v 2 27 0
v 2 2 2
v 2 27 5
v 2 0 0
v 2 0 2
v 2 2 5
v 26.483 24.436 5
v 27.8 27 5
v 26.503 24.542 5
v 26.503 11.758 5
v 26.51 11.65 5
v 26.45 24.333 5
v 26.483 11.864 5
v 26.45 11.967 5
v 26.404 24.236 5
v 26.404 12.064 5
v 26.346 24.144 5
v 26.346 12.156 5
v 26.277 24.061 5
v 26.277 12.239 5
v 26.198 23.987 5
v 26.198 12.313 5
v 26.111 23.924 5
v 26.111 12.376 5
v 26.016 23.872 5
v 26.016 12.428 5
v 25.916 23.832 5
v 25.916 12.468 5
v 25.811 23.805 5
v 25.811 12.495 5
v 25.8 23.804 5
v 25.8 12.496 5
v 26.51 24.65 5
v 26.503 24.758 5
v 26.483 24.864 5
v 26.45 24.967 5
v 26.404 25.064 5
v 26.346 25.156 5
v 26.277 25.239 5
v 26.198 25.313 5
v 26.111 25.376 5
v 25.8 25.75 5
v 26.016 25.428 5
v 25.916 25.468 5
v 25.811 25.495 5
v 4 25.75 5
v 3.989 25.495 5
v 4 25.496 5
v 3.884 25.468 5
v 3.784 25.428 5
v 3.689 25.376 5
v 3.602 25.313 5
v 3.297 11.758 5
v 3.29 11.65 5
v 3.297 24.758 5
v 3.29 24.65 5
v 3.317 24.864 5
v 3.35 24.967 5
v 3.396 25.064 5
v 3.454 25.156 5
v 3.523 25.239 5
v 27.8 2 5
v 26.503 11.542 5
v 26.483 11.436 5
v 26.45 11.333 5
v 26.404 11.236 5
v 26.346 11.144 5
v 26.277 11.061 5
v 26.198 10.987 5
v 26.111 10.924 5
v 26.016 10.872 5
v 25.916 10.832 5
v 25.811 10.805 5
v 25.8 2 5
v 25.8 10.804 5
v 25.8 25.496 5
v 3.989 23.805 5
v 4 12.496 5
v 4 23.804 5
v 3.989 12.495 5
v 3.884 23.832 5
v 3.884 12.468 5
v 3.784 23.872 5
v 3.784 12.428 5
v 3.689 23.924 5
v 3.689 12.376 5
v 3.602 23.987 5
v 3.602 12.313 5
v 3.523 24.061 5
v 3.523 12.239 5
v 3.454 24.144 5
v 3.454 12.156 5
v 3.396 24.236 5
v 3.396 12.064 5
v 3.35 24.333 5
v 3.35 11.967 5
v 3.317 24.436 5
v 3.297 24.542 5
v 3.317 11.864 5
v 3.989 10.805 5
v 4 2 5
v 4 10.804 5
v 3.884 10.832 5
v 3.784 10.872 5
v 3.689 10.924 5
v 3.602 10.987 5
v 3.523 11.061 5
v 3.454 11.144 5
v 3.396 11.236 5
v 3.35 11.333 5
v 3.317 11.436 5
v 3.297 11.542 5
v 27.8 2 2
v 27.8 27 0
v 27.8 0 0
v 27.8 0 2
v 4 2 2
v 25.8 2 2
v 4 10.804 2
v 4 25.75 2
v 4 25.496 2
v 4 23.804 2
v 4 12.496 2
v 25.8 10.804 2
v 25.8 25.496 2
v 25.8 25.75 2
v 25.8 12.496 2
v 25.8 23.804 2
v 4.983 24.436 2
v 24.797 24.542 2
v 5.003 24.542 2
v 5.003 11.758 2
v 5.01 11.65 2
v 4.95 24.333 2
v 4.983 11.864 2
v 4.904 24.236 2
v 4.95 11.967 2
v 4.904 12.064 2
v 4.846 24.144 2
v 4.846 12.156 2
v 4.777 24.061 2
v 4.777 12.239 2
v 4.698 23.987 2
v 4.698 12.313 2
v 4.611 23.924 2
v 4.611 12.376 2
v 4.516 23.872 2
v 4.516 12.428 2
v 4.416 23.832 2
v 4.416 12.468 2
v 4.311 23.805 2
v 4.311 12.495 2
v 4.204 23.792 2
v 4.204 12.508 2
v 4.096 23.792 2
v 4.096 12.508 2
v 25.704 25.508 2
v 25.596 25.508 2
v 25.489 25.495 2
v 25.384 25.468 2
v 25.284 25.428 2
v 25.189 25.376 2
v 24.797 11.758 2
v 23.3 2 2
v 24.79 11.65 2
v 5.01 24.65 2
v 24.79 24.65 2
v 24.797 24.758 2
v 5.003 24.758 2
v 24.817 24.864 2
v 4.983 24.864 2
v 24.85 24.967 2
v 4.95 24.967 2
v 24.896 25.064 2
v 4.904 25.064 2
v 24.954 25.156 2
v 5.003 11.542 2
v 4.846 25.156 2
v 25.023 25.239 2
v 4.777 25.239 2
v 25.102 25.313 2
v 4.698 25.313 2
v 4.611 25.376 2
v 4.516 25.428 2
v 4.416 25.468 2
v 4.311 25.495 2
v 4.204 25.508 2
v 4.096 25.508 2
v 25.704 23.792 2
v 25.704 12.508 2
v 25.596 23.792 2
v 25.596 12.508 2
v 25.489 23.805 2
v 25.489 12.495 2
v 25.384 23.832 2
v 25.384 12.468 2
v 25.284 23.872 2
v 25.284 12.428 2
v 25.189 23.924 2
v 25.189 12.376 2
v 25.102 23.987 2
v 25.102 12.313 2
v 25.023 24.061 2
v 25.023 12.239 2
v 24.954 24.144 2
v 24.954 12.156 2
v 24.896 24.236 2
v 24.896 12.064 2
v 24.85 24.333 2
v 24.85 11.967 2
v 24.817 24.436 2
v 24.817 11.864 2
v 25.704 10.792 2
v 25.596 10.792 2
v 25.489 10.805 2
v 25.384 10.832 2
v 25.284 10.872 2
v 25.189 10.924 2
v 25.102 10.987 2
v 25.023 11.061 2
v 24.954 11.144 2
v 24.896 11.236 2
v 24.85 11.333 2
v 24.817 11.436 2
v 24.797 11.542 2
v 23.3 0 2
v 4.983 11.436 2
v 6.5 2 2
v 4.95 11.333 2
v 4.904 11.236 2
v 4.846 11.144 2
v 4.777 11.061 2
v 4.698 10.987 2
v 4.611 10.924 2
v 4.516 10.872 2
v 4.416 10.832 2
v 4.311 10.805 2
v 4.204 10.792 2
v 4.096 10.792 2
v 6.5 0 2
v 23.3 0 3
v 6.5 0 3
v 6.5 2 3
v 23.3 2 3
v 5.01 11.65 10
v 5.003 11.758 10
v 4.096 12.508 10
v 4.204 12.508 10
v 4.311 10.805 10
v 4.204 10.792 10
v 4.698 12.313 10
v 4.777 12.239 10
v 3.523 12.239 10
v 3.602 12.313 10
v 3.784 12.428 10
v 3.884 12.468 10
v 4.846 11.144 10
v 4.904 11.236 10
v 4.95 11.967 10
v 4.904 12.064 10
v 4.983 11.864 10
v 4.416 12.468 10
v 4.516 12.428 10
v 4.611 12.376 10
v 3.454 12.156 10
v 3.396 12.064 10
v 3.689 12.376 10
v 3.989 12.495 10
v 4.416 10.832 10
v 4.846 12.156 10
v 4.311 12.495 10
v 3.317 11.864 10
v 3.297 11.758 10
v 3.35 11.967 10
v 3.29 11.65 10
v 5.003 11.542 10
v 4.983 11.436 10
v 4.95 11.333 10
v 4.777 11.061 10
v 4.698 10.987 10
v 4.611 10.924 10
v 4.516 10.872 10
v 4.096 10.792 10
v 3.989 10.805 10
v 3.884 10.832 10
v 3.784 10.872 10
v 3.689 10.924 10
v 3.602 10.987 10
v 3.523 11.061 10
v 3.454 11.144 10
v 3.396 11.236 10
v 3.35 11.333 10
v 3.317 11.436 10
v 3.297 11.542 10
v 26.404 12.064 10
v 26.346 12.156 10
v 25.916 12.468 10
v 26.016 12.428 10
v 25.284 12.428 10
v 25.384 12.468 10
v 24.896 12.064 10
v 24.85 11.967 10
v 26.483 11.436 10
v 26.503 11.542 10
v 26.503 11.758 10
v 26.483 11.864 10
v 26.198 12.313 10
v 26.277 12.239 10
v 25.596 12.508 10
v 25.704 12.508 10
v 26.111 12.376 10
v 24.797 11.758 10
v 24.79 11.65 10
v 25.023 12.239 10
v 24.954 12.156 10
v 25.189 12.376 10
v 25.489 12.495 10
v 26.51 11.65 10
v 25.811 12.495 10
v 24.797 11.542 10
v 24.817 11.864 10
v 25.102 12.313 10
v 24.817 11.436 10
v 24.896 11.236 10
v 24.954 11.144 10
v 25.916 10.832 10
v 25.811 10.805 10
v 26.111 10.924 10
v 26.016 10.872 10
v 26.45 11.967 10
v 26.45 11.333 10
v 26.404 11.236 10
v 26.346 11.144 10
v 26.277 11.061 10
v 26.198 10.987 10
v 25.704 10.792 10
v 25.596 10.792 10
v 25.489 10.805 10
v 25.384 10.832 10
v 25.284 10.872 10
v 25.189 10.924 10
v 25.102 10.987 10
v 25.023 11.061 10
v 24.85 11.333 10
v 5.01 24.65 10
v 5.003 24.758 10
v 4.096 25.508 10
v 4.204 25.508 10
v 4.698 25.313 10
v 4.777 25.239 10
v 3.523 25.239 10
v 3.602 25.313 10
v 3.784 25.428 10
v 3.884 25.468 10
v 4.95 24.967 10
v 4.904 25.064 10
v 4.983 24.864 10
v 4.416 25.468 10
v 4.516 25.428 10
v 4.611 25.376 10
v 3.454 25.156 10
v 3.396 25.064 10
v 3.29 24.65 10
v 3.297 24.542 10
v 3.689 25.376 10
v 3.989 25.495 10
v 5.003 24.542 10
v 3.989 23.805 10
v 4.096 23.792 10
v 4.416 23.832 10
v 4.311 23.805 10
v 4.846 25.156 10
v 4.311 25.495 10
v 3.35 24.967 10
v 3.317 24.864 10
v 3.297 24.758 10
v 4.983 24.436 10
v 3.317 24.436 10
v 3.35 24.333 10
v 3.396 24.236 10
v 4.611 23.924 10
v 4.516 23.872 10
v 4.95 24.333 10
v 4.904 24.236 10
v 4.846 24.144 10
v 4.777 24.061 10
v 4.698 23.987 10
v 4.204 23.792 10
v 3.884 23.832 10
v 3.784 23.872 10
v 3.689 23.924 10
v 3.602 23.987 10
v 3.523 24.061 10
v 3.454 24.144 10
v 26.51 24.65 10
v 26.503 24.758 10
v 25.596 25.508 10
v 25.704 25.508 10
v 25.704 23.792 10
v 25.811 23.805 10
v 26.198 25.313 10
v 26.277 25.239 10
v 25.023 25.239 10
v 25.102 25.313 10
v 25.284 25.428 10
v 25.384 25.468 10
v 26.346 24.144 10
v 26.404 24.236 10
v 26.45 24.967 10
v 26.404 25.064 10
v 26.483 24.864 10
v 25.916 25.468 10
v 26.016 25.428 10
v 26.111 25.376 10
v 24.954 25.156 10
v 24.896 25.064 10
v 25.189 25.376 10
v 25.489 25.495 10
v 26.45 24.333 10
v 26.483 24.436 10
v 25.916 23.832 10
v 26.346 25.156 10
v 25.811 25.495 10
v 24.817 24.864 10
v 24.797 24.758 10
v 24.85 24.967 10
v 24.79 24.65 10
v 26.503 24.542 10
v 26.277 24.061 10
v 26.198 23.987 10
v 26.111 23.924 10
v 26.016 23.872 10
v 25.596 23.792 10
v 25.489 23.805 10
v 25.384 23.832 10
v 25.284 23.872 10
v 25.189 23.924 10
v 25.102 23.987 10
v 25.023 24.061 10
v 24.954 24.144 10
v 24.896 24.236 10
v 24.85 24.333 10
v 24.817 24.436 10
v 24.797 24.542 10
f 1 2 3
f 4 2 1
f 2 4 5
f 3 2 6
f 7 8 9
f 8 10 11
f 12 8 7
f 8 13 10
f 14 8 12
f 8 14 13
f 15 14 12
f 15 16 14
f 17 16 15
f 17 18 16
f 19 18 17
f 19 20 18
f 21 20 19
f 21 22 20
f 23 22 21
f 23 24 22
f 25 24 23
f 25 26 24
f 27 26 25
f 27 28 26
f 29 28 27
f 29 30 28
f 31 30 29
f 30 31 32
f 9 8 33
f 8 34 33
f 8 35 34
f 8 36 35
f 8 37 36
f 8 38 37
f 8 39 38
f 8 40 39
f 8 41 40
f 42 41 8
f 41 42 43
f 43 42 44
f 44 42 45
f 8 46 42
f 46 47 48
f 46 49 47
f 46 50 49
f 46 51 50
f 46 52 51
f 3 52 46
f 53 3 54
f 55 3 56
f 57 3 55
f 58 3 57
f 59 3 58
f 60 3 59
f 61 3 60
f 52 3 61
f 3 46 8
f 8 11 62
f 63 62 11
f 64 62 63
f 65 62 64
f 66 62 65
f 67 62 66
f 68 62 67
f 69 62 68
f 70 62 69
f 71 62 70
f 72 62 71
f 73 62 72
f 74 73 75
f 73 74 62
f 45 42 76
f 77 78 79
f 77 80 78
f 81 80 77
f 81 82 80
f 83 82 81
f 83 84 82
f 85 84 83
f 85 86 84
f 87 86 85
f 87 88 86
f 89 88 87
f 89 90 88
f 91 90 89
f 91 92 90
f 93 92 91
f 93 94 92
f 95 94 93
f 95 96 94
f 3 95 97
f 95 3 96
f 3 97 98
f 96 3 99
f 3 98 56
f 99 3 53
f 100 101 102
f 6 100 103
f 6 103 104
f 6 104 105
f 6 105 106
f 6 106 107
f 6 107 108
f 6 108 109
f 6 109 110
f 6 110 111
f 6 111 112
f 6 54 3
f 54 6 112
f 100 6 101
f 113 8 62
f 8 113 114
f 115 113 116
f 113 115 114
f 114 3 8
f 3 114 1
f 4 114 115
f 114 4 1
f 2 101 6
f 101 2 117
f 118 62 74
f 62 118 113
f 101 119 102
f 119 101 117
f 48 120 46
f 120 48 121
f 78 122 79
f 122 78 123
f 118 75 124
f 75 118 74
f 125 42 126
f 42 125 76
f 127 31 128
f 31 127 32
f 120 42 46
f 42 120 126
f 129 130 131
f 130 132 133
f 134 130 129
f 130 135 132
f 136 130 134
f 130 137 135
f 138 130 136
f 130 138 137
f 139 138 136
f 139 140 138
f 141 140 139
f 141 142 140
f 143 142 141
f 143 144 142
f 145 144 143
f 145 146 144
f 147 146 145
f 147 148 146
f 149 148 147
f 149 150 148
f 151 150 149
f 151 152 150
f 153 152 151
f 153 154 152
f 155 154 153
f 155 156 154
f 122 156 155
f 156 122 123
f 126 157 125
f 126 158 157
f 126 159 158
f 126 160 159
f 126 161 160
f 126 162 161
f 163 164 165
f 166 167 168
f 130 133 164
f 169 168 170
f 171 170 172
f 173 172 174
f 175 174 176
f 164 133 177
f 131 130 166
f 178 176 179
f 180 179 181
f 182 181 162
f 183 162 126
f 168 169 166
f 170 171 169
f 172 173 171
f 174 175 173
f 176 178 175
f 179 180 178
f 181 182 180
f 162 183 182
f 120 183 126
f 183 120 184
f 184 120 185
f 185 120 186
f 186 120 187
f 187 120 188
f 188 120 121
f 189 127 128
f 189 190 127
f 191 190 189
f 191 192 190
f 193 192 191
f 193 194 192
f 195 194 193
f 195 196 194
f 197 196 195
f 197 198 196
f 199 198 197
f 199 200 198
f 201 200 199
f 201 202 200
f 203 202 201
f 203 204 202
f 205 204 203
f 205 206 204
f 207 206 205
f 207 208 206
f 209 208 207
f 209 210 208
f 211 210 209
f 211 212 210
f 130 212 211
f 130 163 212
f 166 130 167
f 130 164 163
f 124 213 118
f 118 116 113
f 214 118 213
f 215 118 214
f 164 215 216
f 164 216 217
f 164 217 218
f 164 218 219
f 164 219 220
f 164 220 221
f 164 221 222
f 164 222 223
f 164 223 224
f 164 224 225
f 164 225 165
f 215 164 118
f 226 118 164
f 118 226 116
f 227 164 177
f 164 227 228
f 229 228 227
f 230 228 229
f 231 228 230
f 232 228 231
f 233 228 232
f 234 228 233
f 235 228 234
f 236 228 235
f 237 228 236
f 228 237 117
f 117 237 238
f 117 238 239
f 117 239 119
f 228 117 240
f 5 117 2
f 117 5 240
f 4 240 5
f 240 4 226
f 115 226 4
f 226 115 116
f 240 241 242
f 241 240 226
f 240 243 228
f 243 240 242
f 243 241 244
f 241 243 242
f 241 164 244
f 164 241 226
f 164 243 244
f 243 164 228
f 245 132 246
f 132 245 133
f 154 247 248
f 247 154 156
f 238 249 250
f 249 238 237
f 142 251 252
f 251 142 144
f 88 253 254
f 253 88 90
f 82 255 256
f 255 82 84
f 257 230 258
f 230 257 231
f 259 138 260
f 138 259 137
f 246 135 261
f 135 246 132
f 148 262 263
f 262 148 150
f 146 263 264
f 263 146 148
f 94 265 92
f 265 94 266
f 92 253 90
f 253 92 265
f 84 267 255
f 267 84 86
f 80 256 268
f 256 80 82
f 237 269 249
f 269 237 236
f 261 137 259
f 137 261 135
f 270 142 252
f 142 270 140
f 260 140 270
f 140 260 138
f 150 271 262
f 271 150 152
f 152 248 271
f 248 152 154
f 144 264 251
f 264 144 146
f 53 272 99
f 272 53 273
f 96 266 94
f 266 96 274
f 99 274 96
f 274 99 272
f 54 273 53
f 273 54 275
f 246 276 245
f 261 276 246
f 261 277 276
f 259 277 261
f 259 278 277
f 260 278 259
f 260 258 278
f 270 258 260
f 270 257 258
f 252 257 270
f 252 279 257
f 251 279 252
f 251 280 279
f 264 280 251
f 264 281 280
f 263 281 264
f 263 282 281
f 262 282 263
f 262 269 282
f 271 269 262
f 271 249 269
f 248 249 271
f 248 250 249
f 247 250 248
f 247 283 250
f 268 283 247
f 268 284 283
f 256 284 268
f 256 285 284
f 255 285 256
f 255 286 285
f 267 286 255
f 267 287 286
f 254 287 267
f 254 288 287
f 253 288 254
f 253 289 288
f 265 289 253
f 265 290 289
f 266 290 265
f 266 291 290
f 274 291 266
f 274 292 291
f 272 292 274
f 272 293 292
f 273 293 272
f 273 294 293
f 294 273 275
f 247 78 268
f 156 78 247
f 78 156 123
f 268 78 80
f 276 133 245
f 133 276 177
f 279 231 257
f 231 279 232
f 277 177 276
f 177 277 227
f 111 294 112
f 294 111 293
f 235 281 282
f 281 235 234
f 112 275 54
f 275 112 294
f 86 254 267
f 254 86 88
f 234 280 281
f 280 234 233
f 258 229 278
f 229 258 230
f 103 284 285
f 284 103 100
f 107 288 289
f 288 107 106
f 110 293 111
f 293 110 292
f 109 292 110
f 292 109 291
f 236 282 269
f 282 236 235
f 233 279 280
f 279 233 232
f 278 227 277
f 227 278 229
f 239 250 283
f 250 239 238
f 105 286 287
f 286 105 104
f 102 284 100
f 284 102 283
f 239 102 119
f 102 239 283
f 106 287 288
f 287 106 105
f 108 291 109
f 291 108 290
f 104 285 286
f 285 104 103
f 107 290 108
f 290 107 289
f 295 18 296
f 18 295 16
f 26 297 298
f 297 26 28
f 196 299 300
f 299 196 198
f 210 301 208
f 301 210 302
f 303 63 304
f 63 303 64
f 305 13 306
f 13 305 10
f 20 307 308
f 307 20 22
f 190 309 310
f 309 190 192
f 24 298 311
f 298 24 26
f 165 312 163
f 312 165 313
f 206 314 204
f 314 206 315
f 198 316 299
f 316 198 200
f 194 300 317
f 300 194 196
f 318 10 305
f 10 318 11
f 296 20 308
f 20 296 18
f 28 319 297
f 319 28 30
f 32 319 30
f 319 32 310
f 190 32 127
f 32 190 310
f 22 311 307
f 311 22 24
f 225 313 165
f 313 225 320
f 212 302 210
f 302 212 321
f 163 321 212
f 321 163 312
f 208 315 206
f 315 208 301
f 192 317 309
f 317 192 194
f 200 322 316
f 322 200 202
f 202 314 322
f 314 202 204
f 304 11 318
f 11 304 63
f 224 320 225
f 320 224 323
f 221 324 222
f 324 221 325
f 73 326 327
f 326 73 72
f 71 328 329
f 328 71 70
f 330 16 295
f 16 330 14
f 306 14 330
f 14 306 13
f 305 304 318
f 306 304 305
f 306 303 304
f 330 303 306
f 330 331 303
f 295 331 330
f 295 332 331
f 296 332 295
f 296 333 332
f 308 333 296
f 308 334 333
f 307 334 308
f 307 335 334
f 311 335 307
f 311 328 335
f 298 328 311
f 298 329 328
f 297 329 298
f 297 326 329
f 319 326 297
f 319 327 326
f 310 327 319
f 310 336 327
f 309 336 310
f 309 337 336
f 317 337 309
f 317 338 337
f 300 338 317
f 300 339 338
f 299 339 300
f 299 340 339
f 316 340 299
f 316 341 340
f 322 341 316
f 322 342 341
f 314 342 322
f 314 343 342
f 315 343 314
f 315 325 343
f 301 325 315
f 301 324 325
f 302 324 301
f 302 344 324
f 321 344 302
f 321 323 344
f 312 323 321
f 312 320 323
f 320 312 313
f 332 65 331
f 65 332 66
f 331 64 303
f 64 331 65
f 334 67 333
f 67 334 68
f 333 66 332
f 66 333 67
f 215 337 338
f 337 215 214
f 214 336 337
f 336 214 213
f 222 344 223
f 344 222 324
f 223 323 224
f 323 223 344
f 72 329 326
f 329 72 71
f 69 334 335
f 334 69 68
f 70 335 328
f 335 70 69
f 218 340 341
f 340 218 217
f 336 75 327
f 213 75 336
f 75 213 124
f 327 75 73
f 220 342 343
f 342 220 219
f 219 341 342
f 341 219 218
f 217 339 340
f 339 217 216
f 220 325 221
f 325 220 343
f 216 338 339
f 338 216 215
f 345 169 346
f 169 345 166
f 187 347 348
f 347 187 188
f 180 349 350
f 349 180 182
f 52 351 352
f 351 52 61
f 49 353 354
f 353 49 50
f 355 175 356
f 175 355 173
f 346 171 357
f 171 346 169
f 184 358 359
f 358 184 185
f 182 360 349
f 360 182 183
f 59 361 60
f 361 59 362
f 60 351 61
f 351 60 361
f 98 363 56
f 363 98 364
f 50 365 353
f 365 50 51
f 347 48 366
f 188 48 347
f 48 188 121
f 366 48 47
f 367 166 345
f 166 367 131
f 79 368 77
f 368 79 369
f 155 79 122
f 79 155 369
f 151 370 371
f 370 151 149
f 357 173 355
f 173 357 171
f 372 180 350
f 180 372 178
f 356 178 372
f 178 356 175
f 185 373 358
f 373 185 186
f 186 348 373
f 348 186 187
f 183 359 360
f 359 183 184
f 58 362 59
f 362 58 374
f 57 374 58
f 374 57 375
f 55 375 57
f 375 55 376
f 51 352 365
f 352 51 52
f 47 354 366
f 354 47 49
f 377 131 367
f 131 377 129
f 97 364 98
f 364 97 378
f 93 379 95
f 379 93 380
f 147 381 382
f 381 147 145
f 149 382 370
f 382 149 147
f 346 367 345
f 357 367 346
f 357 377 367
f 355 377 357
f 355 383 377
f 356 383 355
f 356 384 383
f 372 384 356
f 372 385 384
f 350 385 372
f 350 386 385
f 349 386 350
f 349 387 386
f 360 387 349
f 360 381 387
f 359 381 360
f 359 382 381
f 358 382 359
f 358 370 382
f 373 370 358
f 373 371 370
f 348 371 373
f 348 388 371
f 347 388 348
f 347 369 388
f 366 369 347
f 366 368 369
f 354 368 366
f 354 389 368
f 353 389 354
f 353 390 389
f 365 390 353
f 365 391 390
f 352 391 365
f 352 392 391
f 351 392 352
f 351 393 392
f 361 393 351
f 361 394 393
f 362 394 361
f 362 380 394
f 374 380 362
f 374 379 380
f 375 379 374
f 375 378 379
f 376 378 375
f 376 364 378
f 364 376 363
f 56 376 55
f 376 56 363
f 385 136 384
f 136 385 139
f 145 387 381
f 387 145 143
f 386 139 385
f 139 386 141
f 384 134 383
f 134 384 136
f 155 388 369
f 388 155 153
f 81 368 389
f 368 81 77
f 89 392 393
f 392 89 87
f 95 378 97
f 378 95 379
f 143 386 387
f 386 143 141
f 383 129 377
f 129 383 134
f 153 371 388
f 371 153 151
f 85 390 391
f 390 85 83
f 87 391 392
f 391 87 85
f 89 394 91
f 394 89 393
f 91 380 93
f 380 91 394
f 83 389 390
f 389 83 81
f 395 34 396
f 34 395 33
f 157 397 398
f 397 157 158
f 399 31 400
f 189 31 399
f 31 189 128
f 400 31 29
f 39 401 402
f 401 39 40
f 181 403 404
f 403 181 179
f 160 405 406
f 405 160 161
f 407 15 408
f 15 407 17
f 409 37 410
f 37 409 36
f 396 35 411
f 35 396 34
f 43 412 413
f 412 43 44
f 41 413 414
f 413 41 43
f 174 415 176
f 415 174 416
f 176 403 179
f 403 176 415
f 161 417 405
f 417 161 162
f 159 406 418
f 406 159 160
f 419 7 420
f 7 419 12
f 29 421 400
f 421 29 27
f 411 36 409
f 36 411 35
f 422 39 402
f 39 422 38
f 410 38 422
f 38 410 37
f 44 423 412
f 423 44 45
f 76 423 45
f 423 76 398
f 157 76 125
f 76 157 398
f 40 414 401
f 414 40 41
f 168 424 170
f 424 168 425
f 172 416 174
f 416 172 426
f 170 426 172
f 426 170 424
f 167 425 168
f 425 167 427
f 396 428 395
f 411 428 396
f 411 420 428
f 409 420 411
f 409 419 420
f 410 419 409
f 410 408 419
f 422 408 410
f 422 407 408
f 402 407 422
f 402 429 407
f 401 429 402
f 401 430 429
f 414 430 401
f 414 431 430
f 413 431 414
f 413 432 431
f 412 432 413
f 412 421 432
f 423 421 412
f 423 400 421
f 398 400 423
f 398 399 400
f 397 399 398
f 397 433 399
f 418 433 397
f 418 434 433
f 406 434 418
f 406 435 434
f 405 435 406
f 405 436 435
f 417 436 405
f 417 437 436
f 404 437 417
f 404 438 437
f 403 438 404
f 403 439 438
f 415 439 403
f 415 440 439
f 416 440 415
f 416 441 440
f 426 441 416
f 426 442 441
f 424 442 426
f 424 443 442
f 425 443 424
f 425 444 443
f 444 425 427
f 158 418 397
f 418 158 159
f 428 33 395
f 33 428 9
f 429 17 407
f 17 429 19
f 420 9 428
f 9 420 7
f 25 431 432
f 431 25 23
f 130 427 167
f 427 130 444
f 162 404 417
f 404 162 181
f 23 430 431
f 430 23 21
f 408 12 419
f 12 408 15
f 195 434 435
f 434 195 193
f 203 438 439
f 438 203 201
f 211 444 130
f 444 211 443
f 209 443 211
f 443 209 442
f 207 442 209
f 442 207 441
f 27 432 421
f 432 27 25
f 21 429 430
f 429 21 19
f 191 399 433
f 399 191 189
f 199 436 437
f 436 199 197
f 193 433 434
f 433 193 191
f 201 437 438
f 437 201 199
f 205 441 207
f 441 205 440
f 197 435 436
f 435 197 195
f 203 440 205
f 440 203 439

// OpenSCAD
/* This piece was designed by Shawn French (McMaster University, Ontario, Canada)
It is part of the SCIFIcube (SCIentific Fluorescence Imaging cube), a small and portable 3D-printed
fluorescence imager for bacteria, yeast, or any colony-forming organism.  It works well with solid
agar medium, and can image high density samples rapidly over time.  

Details can be found at https://www.github.com/sfrench007/scificube

Copyright 2017 McMaster University

Redistribution and use in source and binary forms, with or without modification, are permitted provided that the following conditions are met:

1. Redistributions of source code must retain the above copyright notice, this list of conditions and the following disclaimer.

2. Redistributions in binary form must reproduce the above copyright notice, this list of conditions and the following disclaimer in the documentation and/or other materials provided with the distribution.

3. Neither the name of the copyright holder nor the names of its contributors may be used to endorse or promote products derived from this software without specific prior written permission.

THIS SOFTWARE IS PROVIDED BY THE COPYRIGHT HOLDERS AND CONTRIBUTORS "AS IS" AND ANY EXPRESS OR IMPLIED WARRANTIES, INCLUDING, BUT NOT LIMITED TO, THE IMPLIED WARRANTIES OF MERCHANTABILITY AND FITNESS FOR A PARTICULAR PURPOSE ARE DISCLAIMED. IN NO EVENT SHALL THE COPYRIGHT HOLDER OR CONTRIBUTORS BE LIABLE FOR ANY DIRECT, INDIRECT, INCIDENTAL, SPECIAL, EXEMPLARY, OR CONSEQUENTIAL DAMAGES (INCLUDING, BUT NOT LIMITED TO, PROCUREMENT OF SUBSTITUTE GOODS OR SERVICES; LOSS OF USE, DATA, OR PROFITS; OR BUSINESS INTERRUPTION) HOWEVER CAUSED AND ON ANY THEORY OF LIABILITY, WHETHER IN CONTRACT, STRICT LIABILITY, OR TORT (INCLUDING NEGLIGENCE OR OTHERWISE) ARISING IN ANY WAY OUT OF THE USE OF THIS SOFTWARE, EVEN IF ADVISED OF THE POSSIBILITY OF SUCH DAMAGE.

*/

r = 0.86;
h = 10;

module pegs(x=0,y=0,z=0) {
    translate([x+4.15,y+11.65,z+0]) cylinder(h=h,r1=r,r2=r,$fn=50,center=false);
    translate([x+25.65,y+11.65,z+0]) cylinder(h=h,r1=r,r2=r,$fn=50,center=false);
    translate([x+4.15,y+24.65,z+0]) cylinder(h=h,r1=r,r2=r,$fn=50,center=false);
    translate([x+25.65,y+24.65,z+0]) cylinder(h=h,r1=r,r2=r,$fn=50,center=false);
}

module brace(x=0,y=0,z=0) {
    difference() {
        translate([x+2,y+2,z+0]) cube(size=[25.8,25,5],center=false);
        translate([x+4,y+1.75,z+0]) cube(size=[21.8,24,6],center=false);
    }
    translate([x+2,y+0,z+0]) cube(size=[25.8,27,2],center=false);
    translate([x+6.5,y+0,z+0]) cube(size=[16.8,2,3],center=false);
}

brace();
pegs();
